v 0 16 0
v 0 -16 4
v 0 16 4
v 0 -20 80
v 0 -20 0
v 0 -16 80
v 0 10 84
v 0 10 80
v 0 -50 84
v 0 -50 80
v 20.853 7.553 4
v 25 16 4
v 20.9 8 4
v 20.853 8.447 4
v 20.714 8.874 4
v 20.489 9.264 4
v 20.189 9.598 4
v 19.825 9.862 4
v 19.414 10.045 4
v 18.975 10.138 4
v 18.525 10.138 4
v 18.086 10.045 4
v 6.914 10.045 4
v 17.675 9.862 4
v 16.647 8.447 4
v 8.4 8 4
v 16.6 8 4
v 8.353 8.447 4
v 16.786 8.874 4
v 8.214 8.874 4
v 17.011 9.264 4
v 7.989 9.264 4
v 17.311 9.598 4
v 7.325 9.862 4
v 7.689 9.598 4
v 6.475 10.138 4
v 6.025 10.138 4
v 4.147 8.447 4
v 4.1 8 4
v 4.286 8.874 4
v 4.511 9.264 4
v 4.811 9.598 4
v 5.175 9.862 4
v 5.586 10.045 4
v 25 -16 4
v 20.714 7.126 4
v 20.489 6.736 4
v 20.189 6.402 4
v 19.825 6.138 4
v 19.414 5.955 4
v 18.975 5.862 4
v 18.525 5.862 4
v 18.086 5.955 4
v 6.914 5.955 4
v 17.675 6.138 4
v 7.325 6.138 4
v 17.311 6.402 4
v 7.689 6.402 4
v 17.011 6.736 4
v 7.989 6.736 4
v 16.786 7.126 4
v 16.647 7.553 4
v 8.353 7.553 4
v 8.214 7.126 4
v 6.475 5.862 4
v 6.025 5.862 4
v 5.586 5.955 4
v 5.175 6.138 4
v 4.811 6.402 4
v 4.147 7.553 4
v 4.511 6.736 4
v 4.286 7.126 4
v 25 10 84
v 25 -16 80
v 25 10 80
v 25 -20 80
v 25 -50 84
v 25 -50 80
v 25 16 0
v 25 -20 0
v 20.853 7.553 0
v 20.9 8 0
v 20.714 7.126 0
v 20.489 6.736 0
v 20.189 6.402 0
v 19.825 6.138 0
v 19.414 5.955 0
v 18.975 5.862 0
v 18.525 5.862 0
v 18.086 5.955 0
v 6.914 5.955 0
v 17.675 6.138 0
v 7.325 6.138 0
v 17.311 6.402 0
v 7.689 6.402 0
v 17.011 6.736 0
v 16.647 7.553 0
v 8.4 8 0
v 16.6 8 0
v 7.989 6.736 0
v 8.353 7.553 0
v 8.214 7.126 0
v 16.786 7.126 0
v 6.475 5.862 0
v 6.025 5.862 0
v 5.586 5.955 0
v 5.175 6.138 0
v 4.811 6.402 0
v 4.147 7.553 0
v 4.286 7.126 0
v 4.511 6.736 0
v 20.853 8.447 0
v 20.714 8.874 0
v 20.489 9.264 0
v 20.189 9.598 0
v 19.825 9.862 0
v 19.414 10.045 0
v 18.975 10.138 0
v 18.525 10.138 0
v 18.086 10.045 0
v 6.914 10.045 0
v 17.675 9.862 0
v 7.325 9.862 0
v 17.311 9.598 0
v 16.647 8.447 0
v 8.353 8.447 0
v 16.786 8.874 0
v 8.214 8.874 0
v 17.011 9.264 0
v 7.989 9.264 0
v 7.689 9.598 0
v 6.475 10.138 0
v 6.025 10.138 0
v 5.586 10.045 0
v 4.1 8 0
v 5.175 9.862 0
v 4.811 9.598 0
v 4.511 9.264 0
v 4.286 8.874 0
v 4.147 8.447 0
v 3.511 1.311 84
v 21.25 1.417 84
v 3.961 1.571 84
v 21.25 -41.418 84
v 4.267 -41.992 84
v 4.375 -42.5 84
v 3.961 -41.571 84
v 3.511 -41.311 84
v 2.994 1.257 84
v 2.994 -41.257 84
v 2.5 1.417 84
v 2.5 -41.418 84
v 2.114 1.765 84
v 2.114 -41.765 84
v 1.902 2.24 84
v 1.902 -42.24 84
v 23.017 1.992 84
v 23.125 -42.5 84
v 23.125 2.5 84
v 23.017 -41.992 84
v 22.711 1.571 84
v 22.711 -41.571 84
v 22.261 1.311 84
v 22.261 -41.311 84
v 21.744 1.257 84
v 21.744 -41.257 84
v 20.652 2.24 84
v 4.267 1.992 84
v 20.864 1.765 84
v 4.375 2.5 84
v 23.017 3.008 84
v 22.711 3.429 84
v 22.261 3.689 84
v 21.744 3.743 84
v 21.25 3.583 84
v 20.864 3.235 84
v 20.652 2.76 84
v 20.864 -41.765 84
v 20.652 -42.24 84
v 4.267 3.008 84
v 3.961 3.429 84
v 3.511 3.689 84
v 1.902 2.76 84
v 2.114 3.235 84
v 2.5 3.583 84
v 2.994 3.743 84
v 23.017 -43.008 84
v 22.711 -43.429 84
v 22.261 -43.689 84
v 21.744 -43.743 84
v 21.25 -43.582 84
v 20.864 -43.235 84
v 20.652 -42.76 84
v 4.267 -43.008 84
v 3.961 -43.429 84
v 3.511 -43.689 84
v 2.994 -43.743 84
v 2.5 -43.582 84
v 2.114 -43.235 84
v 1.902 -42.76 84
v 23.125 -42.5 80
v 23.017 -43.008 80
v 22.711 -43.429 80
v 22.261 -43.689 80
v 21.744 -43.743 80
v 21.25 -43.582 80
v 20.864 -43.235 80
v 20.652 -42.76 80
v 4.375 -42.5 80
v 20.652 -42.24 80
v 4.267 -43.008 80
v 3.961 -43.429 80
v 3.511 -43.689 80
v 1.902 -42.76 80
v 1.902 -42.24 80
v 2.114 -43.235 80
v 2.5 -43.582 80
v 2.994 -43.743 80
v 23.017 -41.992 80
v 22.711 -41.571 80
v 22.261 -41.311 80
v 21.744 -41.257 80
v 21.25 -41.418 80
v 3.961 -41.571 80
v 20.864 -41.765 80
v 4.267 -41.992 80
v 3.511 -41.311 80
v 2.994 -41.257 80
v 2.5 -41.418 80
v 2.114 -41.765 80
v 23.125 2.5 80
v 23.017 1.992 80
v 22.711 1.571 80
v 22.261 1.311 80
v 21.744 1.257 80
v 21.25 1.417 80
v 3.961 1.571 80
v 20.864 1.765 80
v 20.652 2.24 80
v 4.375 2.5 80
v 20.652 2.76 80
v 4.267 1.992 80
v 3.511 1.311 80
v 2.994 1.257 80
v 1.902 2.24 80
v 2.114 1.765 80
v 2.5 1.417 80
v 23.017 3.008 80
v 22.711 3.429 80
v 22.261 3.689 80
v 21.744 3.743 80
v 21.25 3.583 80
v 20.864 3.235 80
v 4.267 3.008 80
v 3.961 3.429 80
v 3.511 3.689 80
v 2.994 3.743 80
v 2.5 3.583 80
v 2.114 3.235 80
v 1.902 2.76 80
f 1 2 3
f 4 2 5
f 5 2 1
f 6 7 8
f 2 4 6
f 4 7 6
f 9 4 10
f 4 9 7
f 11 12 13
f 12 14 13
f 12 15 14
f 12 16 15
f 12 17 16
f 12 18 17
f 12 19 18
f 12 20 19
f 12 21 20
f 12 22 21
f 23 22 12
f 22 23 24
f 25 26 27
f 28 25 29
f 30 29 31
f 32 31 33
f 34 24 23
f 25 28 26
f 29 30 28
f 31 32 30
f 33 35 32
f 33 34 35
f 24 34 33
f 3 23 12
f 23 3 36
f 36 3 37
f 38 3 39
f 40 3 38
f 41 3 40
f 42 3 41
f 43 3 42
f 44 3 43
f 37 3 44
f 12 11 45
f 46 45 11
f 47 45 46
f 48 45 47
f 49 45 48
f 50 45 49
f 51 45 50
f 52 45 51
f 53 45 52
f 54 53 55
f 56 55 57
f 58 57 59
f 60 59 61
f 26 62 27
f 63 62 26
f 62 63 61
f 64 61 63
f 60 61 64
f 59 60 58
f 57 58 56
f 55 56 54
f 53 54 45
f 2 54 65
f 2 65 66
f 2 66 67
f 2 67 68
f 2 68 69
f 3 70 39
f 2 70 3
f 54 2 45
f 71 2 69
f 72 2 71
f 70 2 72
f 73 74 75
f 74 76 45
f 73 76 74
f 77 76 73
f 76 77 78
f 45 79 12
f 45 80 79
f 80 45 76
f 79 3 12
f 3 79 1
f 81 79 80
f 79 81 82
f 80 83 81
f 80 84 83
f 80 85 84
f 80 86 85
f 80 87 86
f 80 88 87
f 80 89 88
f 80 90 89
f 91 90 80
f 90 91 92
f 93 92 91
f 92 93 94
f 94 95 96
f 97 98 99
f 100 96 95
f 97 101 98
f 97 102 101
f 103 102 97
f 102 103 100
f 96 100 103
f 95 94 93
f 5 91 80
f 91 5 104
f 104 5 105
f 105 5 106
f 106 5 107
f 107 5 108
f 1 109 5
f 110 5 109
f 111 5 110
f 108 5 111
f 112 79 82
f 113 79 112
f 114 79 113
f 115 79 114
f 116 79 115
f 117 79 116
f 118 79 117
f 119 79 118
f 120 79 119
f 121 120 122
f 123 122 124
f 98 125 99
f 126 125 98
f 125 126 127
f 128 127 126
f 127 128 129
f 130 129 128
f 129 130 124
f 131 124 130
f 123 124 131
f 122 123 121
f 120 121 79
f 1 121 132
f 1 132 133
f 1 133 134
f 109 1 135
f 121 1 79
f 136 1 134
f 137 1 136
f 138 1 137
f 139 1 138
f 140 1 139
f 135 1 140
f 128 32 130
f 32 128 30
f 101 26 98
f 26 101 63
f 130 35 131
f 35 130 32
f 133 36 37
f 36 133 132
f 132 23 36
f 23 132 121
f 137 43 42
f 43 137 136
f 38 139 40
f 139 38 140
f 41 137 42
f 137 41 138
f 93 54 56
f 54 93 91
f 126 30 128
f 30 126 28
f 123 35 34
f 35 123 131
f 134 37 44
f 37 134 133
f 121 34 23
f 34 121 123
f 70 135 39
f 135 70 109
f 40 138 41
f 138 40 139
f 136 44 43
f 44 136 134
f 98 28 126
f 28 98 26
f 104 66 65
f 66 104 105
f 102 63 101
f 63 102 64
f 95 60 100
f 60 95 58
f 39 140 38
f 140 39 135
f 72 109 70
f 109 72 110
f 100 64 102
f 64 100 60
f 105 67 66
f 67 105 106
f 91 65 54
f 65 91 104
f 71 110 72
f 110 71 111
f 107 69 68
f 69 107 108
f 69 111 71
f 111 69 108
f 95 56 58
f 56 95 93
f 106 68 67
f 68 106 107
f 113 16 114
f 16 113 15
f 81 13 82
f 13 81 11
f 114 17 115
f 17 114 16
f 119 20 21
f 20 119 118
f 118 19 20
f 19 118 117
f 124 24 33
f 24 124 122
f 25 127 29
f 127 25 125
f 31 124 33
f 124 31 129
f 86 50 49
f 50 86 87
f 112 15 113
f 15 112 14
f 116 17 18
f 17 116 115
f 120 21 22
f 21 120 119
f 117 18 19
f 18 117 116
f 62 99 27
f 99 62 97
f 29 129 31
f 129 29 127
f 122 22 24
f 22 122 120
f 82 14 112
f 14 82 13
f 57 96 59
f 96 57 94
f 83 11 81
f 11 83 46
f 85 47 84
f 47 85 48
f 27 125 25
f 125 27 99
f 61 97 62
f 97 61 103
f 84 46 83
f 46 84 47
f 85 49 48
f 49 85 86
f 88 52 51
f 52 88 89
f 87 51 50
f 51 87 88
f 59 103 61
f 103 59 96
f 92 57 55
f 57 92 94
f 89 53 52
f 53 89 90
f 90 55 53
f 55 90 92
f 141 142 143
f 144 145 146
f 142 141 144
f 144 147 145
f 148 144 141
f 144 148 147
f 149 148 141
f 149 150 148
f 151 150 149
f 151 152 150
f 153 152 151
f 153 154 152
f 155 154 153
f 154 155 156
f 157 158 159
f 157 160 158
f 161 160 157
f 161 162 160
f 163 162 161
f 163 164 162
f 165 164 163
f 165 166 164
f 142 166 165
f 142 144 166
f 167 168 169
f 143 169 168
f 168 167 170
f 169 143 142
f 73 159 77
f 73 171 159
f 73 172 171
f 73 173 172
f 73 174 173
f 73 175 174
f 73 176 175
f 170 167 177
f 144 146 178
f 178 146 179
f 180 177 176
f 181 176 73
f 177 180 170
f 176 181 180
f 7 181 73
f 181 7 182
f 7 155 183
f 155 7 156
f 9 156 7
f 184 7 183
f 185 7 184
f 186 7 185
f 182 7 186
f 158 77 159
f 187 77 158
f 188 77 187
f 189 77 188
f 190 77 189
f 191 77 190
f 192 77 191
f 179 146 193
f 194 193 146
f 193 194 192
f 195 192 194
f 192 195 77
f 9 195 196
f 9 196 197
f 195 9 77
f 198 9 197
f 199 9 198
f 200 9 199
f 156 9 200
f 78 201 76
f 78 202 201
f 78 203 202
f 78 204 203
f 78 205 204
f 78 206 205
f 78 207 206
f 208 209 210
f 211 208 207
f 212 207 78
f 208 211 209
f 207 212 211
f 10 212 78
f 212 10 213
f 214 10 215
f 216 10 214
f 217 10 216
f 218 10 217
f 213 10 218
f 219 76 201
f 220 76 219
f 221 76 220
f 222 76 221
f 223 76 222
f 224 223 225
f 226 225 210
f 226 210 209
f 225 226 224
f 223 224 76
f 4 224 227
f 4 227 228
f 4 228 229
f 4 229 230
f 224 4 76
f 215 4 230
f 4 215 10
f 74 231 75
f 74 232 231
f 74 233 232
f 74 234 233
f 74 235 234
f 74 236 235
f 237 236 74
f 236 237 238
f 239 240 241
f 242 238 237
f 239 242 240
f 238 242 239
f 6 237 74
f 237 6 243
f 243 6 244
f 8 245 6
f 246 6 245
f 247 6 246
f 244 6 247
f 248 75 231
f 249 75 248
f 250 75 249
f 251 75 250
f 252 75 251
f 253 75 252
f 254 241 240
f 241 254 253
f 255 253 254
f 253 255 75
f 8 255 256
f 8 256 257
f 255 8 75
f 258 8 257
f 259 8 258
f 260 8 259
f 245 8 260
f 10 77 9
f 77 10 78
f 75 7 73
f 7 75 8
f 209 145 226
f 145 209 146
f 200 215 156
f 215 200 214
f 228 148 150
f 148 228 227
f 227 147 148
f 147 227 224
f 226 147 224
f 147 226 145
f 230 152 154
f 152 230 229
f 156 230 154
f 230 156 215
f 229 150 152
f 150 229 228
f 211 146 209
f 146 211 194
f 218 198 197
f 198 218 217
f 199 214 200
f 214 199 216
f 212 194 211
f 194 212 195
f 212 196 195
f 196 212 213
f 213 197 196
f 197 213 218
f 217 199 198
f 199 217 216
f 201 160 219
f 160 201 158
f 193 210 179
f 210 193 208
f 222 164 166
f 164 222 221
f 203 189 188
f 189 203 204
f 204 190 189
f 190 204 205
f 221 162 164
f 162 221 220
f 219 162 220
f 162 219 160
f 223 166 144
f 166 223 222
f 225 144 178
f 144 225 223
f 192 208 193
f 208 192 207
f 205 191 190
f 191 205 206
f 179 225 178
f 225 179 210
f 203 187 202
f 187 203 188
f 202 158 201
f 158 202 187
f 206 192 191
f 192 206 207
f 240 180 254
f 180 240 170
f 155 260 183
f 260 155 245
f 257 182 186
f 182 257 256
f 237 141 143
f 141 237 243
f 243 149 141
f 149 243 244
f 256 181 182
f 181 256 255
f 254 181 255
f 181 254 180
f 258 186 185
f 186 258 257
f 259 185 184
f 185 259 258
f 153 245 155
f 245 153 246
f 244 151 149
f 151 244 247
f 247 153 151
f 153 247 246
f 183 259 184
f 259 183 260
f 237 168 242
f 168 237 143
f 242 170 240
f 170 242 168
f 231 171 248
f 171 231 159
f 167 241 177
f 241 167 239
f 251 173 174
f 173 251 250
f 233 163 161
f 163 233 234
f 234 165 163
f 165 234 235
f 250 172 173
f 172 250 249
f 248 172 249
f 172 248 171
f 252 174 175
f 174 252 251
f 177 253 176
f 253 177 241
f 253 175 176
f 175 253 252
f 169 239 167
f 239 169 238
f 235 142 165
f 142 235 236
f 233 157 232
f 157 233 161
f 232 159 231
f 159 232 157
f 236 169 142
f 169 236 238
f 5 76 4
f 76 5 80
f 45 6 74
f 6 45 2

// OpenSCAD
WallThickness = 4;

BaseWidth = 25;
BaseDepth = 16;
BaseHoleDiameter = 4.3;

Arm1Length = 20;
Arm1Width = 25;

Arm2Length = 80;
Arm2Width = 25;

PlatformLength = 60;
PlatformWidth = 25;

ZiptieHoleDiameter = 2.5;


difference() {
    cube(size=[BaseWidth, BaseDepth, WallThickness], center=false);

    translate([BaseWidth/4, BaseDepth/2, 0])
    cylinder(h=WallThickness, d=BaseHoleDiameter, center=false, $fn=30);

    translate([BaseWidth/4*3, BaseDepth/2, 0])
    cylinder(h=WallThickness, d=BaseHoleDiameter, center=false, $fn=30);
}

translate([BaseWidth/2-Arm1Width/2, -Arm1Length, 0])
cube(size=[Arm1Width, Arm1Length, WallThickness], center=false);

translate([BaseWidth/2-Arm2Width/2, -Arm1Length, 0])
cube(size=[Arm1Width, WallThickness, Arm2Length], center=false);

translate([BaseWidth/2-PlatformWidth/2, -Arm1Length-PlatformLength/2, Arm2Length])
difference() {
    cube(size=[PlatformWidth, PlatformLength, WallThickness], center=false);

    translate([PlatformWidth/8, PlatformLength/8, 0])
    cylinder(h=WallThickness, d=ZiptieHoleDiameter, center=false, $fn=15);
    translate([PlatformWidth/8*7, PlatformLength/8, 0])
    cylinder(h=WallThickness, d=ZiptieHoleDiameter, center=false, $fn=15);
    translate([PlatformWidth/8, PlatformLength/8*7, 0])
    cylinder(h=WallThickness, d=ZiptieHoleDiameter, center=false, $fn=15);
    translate([PlatformWidth/8*7, PlatformLength/8*7, 0])
    cylinder(h=WallThickness, d=ZiptieHoleDiameter, center=false, $fn=15);
}
